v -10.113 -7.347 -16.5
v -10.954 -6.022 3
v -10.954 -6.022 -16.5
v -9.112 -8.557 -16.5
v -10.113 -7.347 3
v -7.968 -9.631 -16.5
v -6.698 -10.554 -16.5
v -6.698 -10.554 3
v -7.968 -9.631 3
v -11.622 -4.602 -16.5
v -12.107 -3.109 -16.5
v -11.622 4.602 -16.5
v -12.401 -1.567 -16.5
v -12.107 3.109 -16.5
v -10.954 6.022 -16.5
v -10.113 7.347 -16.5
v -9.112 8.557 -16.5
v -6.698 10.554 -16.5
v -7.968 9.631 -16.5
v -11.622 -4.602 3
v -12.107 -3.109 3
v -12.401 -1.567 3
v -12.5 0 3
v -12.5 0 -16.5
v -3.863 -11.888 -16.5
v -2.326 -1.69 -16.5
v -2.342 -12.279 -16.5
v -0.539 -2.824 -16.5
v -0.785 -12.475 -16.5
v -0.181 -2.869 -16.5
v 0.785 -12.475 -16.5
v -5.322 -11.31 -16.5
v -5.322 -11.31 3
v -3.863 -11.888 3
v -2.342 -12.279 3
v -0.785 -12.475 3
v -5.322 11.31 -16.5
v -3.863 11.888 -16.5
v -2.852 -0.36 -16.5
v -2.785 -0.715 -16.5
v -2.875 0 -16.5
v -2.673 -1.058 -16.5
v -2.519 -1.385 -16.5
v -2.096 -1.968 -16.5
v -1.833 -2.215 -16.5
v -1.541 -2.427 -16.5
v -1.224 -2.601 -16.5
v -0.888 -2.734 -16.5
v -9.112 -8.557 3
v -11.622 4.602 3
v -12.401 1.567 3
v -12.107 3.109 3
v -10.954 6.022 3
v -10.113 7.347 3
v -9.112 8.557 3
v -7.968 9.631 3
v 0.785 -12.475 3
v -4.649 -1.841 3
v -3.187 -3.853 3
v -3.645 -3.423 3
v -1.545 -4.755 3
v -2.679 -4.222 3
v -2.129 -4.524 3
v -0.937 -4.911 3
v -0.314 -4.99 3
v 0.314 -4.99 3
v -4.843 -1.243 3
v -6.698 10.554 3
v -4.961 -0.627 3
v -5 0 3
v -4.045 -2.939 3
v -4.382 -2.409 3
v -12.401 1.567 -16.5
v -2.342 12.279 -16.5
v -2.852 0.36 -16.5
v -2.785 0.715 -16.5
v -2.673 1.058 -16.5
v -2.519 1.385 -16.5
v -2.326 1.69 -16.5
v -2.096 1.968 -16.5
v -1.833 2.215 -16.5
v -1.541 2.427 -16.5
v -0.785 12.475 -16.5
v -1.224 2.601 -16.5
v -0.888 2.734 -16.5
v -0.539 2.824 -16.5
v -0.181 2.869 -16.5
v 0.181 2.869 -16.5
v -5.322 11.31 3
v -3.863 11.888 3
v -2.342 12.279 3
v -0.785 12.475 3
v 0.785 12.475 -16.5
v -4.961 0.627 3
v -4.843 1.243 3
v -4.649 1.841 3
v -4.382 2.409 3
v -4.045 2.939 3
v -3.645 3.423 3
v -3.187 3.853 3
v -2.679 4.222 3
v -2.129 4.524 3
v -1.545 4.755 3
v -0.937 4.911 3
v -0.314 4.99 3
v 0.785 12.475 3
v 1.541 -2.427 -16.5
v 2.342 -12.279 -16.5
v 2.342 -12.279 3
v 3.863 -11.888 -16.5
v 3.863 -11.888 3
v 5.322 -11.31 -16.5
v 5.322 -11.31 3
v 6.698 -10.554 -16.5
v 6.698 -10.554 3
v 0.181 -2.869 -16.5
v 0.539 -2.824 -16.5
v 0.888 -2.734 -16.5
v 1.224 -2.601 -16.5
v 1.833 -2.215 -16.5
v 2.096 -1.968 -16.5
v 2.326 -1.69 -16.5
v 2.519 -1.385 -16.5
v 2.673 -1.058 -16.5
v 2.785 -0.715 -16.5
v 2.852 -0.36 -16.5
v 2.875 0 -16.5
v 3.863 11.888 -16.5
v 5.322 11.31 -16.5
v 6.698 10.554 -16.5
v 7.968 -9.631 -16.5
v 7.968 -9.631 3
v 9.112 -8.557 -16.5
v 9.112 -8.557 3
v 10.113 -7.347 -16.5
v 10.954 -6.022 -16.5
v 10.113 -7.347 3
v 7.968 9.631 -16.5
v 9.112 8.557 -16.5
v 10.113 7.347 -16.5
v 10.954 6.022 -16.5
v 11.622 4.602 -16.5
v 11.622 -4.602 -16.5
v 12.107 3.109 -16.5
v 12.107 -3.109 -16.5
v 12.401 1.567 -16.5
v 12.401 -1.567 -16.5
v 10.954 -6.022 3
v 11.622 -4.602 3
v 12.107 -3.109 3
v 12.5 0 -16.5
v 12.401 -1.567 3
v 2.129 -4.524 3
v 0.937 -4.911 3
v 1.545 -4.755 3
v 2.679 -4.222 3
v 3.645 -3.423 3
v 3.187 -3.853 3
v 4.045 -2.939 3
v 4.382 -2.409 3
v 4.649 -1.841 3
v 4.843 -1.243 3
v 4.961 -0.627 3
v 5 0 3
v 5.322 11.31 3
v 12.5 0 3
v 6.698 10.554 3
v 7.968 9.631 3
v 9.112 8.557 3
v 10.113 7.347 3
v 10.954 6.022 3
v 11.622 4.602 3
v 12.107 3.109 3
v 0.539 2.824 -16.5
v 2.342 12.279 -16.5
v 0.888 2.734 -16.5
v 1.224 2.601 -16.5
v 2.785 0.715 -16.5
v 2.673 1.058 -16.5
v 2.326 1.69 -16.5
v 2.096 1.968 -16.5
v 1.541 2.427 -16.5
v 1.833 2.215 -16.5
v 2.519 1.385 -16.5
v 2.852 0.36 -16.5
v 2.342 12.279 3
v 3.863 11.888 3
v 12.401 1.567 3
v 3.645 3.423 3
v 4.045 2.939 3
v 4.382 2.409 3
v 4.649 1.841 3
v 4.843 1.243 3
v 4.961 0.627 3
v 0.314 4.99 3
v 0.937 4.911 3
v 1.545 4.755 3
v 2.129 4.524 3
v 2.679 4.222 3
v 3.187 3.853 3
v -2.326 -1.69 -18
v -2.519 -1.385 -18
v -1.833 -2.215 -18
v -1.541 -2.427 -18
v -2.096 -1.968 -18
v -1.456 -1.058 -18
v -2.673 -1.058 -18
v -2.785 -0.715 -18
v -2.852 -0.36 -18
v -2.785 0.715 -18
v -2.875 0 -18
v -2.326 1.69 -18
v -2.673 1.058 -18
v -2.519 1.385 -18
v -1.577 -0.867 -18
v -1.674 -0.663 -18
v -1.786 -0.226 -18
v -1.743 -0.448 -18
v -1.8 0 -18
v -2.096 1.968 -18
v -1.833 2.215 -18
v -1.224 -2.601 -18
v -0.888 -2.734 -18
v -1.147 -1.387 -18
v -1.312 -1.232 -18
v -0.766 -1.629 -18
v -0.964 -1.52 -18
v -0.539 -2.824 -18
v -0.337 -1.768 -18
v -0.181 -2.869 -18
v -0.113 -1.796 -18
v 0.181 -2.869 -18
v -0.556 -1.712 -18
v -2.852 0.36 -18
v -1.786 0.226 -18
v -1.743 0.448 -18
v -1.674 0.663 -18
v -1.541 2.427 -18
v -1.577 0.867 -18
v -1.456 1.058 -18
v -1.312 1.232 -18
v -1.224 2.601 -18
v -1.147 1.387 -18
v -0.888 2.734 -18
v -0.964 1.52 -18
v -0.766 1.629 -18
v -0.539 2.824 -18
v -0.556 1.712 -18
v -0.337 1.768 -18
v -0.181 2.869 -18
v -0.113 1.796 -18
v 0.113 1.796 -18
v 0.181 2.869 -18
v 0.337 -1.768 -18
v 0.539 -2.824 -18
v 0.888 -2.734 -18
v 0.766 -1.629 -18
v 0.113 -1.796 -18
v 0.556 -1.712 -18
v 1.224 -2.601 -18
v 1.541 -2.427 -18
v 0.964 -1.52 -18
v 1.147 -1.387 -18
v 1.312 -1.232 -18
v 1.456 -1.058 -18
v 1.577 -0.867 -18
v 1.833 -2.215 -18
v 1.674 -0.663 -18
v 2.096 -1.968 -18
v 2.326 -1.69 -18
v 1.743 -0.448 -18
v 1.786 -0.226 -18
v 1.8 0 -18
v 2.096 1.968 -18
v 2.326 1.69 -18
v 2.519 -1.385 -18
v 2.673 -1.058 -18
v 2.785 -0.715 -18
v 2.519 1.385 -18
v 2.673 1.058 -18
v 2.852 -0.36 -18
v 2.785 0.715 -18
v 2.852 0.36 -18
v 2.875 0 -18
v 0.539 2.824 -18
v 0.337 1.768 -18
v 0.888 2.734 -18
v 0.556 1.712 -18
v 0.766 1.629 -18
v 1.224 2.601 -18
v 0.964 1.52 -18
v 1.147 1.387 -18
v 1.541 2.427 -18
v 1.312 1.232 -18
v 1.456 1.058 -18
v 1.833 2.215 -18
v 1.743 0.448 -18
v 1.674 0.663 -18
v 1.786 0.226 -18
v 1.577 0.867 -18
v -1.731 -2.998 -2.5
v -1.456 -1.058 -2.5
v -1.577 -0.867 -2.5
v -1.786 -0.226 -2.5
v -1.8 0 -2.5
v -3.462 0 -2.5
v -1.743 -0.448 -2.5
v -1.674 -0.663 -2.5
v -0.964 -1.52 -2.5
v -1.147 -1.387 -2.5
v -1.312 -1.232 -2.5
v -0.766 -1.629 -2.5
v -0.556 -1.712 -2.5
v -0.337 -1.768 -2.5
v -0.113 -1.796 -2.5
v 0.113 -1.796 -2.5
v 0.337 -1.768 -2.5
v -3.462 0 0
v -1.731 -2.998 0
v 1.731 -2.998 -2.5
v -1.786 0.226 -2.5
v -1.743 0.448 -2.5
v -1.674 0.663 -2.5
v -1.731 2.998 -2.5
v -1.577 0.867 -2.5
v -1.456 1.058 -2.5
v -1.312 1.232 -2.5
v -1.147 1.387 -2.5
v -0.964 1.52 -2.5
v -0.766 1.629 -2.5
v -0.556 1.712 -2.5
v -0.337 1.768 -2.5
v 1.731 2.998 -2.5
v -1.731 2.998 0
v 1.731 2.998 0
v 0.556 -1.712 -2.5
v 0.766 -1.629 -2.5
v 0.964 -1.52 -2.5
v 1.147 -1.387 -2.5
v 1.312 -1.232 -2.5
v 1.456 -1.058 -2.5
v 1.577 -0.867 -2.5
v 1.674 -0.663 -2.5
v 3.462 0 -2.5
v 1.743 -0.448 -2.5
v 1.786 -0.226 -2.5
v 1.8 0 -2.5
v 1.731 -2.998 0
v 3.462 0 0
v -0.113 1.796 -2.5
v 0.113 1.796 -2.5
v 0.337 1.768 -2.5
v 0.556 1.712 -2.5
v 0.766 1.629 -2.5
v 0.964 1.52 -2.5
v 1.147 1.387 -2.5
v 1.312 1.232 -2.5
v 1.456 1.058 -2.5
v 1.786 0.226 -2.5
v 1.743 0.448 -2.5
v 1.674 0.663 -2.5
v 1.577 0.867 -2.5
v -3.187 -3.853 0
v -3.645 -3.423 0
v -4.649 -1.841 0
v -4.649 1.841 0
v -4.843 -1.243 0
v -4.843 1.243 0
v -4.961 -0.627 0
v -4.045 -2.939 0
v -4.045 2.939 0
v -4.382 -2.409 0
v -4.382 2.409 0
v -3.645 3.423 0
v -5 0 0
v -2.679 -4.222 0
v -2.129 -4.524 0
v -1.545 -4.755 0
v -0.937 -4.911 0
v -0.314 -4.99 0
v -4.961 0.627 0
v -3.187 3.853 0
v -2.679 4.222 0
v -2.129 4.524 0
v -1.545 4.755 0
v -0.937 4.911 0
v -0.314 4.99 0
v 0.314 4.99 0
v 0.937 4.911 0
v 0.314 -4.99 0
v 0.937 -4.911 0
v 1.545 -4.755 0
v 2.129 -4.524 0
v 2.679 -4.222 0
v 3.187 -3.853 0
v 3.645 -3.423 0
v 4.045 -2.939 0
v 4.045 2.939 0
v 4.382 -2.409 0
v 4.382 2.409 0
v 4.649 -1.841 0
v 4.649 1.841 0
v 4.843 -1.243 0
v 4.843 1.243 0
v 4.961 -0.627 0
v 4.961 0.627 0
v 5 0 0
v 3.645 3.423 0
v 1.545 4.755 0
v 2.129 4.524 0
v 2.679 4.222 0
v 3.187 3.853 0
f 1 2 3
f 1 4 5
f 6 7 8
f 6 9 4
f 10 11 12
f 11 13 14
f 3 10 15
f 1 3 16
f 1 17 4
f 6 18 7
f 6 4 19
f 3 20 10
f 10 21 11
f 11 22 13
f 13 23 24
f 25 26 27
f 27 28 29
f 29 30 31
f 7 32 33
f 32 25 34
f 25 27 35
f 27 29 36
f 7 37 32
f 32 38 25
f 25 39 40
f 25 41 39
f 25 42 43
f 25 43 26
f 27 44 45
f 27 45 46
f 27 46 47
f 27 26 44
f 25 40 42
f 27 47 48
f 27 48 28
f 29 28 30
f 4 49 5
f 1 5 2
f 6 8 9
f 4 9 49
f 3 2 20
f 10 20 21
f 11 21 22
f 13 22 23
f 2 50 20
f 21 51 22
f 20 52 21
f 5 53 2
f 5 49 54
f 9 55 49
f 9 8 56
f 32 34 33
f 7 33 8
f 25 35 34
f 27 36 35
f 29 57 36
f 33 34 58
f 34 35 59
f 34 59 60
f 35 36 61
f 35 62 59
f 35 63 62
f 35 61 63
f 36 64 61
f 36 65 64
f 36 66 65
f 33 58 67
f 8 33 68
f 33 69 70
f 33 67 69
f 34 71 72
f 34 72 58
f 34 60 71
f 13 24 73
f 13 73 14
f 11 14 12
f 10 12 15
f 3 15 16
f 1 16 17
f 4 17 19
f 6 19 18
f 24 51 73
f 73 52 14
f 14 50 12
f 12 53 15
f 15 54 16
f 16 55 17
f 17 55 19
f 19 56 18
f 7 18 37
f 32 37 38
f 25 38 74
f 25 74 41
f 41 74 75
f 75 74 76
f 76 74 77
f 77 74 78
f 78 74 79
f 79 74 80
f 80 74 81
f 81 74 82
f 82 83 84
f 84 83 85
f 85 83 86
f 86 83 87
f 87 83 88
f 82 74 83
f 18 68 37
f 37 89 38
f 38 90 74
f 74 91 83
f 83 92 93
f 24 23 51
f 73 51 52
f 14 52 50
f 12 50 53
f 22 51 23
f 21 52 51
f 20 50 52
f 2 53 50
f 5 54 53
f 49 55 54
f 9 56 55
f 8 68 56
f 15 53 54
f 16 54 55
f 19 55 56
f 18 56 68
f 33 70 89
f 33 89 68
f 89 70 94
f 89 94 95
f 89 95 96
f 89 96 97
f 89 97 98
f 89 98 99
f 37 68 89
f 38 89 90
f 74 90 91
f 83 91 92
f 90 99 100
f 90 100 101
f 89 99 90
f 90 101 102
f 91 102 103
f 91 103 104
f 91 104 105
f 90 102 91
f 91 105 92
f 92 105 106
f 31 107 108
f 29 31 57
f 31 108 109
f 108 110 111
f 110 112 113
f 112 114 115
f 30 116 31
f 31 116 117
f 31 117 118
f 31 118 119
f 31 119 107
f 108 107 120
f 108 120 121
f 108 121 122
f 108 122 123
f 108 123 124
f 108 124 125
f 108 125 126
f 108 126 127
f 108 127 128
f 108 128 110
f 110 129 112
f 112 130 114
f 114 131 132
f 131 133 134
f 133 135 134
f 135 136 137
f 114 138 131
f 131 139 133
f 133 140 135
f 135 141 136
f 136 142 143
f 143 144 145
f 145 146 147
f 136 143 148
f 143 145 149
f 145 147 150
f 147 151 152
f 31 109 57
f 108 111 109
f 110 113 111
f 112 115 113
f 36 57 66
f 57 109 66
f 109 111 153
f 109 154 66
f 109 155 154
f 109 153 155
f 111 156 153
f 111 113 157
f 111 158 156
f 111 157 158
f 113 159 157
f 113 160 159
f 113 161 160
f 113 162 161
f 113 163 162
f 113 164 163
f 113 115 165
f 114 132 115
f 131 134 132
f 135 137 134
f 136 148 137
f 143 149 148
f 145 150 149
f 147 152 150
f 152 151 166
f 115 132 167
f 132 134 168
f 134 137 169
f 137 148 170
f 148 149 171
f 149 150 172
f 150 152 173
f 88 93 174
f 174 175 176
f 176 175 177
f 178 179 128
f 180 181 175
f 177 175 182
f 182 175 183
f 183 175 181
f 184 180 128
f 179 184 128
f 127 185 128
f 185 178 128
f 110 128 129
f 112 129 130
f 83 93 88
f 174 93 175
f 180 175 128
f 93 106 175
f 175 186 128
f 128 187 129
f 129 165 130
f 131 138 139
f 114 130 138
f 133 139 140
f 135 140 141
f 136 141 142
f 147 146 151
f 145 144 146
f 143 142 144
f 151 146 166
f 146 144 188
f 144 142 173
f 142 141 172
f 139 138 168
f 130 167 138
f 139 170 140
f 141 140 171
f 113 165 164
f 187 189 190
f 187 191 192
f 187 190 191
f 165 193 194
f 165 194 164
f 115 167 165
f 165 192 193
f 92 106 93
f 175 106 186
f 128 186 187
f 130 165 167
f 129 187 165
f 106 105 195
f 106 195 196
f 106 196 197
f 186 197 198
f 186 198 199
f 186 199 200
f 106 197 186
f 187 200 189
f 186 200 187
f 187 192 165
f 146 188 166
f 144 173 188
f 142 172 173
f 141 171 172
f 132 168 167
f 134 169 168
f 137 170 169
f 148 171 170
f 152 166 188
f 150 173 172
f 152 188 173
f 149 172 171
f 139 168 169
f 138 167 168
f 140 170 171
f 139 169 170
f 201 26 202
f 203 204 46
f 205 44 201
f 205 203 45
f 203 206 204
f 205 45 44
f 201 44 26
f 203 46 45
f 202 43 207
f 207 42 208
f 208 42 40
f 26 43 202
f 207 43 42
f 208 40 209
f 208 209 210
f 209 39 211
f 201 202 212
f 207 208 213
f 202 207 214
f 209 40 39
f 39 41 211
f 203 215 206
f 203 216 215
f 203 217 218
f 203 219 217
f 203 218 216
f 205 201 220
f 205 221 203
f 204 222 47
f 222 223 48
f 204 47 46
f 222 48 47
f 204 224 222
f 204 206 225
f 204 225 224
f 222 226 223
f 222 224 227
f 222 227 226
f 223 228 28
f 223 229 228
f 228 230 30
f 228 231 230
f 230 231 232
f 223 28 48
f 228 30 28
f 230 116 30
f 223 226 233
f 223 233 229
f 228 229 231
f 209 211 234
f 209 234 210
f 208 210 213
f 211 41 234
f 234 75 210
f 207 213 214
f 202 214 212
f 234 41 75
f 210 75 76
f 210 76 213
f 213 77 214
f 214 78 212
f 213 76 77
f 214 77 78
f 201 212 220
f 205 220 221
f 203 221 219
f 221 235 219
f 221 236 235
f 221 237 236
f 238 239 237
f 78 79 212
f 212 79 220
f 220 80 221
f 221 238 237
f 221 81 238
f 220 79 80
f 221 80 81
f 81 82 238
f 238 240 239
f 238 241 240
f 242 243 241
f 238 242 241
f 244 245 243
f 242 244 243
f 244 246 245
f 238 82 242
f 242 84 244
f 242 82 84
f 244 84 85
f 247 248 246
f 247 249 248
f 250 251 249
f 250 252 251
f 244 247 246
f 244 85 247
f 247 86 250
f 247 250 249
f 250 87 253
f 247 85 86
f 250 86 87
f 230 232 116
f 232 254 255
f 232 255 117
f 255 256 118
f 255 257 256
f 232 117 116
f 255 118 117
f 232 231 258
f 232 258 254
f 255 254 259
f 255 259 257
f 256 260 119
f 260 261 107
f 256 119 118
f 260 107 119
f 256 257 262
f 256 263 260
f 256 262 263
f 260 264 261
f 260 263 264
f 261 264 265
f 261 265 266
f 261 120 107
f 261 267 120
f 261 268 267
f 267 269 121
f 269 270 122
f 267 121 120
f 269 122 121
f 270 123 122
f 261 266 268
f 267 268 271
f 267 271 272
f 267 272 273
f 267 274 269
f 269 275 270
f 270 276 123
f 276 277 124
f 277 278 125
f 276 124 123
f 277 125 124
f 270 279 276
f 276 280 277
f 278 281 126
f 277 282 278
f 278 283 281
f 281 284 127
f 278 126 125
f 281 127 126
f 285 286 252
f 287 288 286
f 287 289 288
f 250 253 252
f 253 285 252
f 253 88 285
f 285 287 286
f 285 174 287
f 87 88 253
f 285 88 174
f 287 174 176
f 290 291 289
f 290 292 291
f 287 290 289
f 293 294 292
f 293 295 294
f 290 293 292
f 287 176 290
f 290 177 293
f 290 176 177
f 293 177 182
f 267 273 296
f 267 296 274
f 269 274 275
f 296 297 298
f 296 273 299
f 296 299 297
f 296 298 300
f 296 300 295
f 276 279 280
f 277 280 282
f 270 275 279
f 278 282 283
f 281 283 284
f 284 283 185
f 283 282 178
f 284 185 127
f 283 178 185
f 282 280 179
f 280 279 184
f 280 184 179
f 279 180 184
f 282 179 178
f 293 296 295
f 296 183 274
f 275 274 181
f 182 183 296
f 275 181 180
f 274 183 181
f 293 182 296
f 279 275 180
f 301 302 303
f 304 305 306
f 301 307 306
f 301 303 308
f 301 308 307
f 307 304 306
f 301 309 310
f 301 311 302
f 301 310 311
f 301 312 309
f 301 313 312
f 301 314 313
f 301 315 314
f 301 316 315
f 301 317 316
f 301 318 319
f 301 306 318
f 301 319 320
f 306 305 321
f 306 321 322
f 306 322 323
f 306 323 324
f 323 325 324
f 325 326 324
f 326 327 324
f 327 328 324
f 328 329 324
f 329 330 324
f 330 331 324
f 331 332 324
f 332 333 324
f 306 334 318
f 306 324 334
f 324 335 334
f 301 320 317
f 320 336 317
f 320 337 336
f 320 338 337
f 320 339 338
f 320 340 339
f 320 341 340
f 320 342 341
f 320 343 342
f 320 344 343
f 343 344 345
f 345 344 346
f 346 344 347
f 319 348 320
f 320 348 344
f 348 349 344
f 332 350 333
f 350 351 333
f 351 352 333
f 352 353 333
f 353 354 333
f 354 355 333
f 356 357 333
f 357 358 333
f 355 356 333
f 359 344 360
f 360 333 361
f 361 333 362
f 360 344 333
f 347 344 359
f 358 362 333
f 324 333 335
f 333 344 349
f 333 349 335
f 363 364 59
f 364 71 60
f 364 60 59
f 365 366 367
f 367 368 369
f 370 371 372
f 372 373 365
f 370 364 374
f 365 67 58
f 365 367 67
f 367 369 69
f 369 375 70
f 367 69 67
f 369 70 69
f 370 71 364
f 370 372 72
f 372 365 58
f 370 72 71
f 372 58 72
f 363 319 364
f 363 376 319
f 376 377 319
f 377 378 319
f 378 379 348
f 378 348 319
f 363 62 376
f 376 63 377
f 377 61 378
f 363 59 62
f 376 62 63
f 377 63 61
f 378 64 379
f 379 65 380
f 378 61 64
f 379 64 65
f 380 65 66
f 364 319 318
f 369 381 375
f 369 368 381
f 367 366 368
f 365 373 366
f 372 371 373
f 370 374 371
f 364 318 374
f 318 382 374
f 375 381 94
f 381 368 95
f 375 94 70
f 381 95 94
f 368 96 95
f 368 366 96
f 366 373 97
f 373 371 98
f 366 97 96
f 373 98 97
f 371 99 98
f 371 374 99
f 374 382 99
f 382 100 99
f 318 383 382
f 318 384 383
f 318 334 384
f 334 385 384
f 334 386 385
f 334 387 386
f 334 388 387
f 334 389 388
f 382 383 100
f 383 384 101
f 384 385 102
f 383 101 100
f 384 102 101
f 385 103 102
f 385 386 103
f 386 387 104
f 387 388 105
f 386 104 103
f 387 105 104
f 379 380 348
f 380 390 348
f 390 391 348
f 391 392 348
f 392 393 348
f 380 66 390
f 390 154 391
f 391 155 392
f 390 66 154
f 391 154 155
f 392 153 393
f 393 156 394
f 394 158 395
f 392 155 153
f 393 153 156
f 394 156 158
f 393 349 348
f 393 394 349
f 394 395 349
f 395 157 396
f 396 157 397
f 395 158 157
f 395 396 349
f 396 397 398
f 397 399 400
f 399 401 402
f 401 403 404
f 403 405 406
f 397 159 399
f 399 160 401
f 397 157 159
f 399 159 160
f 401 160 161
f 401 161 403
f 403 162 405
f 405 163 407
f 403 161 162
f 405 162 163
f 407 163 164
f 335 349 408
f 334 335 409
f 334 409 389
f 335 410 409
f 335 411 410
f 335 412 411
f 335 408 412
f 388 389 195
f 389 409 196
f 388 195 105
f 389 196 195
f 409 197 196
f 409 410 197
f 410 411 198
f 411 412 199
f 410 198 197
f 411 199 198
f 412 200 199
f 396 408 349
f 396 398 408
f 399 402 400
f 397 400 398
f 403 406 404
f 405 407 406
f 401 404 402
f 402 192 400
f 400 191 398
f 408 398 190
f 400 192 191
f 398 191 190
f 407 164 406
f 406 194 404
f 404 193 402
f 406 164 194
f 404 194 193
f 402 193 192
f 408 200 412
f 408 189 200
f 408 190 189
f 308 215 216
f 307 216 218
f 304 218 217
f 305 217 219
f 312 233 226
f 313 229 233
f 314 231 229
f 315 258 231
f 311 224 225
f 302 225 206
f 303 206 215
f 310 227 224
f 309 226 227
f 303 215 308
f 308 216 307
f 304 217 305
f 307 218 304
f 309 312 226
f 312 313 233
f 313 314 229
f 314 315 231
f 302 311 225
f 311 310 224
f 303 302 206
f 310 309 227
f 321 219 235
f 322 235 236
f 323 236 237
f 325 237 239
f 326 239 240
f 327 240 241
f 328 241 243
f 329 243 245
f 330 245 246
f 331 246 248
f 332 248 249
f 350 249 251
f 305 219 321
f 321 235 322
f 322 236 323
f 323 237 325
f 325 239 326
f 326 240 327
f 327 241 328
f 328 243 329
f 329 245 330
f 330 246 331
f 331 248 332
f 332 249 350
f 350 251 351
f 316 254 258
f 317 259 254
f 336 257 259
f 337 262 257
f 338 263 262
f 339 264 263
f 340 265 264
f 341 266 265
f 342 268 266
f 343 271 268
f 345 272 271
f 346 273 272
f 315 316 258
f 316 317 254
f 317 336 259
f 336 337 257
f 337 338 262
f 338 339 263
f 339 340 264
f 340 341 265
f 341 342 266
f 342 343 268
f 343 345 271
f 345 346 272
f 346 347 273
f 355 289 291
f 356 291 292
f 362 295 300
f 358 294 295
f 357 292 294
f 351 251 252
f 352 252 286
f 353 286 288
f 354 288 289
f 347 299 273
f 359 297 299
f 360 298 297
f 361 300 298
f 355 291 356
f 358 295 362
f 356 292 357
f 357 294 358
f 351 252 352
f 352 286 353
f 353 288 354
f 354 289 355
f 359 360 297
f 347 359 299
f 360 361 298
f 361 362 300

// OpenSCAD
$fn = 50;


difference() {
	union() {
		translate(v = [0, 0, -16.5000000000]) {
			cylinder(h = 19.5000000000, r = 12.5000000000);
		}
		#translate(v = [0, 0, -18.0000000000]) {
			cylinder(h = 18, r = 2.8750000000);
		}
	}
	union() {
		translate(v = [0, 0, 0]) {
			rotate(a = [0, 0, 0]) {
				difference() {
					union() {
						translate(v = [0, 0, -2.5000000000]) {
							linear_extrude(height = 2.5000000000) {
								polygon(points = [[3.4620000000, 0.0000000000], [1.7310000000, 2.9981799479], [-1.7310000000, 2.9981799479], [-3.4620000000, 0.0000000000], [-1.7310000000, -2.9981799479], [1.7310000000, -2.9981799479]]);
							}
						}
					}
					union();
				}
			}
		}
		#cylinder(h = 3, r = 5.0000000000);
		#translate(v = [0, 0, -100.0000000000]) {
			cylinder(h = 200, r = 1.8000000000);
		}
	}
}
